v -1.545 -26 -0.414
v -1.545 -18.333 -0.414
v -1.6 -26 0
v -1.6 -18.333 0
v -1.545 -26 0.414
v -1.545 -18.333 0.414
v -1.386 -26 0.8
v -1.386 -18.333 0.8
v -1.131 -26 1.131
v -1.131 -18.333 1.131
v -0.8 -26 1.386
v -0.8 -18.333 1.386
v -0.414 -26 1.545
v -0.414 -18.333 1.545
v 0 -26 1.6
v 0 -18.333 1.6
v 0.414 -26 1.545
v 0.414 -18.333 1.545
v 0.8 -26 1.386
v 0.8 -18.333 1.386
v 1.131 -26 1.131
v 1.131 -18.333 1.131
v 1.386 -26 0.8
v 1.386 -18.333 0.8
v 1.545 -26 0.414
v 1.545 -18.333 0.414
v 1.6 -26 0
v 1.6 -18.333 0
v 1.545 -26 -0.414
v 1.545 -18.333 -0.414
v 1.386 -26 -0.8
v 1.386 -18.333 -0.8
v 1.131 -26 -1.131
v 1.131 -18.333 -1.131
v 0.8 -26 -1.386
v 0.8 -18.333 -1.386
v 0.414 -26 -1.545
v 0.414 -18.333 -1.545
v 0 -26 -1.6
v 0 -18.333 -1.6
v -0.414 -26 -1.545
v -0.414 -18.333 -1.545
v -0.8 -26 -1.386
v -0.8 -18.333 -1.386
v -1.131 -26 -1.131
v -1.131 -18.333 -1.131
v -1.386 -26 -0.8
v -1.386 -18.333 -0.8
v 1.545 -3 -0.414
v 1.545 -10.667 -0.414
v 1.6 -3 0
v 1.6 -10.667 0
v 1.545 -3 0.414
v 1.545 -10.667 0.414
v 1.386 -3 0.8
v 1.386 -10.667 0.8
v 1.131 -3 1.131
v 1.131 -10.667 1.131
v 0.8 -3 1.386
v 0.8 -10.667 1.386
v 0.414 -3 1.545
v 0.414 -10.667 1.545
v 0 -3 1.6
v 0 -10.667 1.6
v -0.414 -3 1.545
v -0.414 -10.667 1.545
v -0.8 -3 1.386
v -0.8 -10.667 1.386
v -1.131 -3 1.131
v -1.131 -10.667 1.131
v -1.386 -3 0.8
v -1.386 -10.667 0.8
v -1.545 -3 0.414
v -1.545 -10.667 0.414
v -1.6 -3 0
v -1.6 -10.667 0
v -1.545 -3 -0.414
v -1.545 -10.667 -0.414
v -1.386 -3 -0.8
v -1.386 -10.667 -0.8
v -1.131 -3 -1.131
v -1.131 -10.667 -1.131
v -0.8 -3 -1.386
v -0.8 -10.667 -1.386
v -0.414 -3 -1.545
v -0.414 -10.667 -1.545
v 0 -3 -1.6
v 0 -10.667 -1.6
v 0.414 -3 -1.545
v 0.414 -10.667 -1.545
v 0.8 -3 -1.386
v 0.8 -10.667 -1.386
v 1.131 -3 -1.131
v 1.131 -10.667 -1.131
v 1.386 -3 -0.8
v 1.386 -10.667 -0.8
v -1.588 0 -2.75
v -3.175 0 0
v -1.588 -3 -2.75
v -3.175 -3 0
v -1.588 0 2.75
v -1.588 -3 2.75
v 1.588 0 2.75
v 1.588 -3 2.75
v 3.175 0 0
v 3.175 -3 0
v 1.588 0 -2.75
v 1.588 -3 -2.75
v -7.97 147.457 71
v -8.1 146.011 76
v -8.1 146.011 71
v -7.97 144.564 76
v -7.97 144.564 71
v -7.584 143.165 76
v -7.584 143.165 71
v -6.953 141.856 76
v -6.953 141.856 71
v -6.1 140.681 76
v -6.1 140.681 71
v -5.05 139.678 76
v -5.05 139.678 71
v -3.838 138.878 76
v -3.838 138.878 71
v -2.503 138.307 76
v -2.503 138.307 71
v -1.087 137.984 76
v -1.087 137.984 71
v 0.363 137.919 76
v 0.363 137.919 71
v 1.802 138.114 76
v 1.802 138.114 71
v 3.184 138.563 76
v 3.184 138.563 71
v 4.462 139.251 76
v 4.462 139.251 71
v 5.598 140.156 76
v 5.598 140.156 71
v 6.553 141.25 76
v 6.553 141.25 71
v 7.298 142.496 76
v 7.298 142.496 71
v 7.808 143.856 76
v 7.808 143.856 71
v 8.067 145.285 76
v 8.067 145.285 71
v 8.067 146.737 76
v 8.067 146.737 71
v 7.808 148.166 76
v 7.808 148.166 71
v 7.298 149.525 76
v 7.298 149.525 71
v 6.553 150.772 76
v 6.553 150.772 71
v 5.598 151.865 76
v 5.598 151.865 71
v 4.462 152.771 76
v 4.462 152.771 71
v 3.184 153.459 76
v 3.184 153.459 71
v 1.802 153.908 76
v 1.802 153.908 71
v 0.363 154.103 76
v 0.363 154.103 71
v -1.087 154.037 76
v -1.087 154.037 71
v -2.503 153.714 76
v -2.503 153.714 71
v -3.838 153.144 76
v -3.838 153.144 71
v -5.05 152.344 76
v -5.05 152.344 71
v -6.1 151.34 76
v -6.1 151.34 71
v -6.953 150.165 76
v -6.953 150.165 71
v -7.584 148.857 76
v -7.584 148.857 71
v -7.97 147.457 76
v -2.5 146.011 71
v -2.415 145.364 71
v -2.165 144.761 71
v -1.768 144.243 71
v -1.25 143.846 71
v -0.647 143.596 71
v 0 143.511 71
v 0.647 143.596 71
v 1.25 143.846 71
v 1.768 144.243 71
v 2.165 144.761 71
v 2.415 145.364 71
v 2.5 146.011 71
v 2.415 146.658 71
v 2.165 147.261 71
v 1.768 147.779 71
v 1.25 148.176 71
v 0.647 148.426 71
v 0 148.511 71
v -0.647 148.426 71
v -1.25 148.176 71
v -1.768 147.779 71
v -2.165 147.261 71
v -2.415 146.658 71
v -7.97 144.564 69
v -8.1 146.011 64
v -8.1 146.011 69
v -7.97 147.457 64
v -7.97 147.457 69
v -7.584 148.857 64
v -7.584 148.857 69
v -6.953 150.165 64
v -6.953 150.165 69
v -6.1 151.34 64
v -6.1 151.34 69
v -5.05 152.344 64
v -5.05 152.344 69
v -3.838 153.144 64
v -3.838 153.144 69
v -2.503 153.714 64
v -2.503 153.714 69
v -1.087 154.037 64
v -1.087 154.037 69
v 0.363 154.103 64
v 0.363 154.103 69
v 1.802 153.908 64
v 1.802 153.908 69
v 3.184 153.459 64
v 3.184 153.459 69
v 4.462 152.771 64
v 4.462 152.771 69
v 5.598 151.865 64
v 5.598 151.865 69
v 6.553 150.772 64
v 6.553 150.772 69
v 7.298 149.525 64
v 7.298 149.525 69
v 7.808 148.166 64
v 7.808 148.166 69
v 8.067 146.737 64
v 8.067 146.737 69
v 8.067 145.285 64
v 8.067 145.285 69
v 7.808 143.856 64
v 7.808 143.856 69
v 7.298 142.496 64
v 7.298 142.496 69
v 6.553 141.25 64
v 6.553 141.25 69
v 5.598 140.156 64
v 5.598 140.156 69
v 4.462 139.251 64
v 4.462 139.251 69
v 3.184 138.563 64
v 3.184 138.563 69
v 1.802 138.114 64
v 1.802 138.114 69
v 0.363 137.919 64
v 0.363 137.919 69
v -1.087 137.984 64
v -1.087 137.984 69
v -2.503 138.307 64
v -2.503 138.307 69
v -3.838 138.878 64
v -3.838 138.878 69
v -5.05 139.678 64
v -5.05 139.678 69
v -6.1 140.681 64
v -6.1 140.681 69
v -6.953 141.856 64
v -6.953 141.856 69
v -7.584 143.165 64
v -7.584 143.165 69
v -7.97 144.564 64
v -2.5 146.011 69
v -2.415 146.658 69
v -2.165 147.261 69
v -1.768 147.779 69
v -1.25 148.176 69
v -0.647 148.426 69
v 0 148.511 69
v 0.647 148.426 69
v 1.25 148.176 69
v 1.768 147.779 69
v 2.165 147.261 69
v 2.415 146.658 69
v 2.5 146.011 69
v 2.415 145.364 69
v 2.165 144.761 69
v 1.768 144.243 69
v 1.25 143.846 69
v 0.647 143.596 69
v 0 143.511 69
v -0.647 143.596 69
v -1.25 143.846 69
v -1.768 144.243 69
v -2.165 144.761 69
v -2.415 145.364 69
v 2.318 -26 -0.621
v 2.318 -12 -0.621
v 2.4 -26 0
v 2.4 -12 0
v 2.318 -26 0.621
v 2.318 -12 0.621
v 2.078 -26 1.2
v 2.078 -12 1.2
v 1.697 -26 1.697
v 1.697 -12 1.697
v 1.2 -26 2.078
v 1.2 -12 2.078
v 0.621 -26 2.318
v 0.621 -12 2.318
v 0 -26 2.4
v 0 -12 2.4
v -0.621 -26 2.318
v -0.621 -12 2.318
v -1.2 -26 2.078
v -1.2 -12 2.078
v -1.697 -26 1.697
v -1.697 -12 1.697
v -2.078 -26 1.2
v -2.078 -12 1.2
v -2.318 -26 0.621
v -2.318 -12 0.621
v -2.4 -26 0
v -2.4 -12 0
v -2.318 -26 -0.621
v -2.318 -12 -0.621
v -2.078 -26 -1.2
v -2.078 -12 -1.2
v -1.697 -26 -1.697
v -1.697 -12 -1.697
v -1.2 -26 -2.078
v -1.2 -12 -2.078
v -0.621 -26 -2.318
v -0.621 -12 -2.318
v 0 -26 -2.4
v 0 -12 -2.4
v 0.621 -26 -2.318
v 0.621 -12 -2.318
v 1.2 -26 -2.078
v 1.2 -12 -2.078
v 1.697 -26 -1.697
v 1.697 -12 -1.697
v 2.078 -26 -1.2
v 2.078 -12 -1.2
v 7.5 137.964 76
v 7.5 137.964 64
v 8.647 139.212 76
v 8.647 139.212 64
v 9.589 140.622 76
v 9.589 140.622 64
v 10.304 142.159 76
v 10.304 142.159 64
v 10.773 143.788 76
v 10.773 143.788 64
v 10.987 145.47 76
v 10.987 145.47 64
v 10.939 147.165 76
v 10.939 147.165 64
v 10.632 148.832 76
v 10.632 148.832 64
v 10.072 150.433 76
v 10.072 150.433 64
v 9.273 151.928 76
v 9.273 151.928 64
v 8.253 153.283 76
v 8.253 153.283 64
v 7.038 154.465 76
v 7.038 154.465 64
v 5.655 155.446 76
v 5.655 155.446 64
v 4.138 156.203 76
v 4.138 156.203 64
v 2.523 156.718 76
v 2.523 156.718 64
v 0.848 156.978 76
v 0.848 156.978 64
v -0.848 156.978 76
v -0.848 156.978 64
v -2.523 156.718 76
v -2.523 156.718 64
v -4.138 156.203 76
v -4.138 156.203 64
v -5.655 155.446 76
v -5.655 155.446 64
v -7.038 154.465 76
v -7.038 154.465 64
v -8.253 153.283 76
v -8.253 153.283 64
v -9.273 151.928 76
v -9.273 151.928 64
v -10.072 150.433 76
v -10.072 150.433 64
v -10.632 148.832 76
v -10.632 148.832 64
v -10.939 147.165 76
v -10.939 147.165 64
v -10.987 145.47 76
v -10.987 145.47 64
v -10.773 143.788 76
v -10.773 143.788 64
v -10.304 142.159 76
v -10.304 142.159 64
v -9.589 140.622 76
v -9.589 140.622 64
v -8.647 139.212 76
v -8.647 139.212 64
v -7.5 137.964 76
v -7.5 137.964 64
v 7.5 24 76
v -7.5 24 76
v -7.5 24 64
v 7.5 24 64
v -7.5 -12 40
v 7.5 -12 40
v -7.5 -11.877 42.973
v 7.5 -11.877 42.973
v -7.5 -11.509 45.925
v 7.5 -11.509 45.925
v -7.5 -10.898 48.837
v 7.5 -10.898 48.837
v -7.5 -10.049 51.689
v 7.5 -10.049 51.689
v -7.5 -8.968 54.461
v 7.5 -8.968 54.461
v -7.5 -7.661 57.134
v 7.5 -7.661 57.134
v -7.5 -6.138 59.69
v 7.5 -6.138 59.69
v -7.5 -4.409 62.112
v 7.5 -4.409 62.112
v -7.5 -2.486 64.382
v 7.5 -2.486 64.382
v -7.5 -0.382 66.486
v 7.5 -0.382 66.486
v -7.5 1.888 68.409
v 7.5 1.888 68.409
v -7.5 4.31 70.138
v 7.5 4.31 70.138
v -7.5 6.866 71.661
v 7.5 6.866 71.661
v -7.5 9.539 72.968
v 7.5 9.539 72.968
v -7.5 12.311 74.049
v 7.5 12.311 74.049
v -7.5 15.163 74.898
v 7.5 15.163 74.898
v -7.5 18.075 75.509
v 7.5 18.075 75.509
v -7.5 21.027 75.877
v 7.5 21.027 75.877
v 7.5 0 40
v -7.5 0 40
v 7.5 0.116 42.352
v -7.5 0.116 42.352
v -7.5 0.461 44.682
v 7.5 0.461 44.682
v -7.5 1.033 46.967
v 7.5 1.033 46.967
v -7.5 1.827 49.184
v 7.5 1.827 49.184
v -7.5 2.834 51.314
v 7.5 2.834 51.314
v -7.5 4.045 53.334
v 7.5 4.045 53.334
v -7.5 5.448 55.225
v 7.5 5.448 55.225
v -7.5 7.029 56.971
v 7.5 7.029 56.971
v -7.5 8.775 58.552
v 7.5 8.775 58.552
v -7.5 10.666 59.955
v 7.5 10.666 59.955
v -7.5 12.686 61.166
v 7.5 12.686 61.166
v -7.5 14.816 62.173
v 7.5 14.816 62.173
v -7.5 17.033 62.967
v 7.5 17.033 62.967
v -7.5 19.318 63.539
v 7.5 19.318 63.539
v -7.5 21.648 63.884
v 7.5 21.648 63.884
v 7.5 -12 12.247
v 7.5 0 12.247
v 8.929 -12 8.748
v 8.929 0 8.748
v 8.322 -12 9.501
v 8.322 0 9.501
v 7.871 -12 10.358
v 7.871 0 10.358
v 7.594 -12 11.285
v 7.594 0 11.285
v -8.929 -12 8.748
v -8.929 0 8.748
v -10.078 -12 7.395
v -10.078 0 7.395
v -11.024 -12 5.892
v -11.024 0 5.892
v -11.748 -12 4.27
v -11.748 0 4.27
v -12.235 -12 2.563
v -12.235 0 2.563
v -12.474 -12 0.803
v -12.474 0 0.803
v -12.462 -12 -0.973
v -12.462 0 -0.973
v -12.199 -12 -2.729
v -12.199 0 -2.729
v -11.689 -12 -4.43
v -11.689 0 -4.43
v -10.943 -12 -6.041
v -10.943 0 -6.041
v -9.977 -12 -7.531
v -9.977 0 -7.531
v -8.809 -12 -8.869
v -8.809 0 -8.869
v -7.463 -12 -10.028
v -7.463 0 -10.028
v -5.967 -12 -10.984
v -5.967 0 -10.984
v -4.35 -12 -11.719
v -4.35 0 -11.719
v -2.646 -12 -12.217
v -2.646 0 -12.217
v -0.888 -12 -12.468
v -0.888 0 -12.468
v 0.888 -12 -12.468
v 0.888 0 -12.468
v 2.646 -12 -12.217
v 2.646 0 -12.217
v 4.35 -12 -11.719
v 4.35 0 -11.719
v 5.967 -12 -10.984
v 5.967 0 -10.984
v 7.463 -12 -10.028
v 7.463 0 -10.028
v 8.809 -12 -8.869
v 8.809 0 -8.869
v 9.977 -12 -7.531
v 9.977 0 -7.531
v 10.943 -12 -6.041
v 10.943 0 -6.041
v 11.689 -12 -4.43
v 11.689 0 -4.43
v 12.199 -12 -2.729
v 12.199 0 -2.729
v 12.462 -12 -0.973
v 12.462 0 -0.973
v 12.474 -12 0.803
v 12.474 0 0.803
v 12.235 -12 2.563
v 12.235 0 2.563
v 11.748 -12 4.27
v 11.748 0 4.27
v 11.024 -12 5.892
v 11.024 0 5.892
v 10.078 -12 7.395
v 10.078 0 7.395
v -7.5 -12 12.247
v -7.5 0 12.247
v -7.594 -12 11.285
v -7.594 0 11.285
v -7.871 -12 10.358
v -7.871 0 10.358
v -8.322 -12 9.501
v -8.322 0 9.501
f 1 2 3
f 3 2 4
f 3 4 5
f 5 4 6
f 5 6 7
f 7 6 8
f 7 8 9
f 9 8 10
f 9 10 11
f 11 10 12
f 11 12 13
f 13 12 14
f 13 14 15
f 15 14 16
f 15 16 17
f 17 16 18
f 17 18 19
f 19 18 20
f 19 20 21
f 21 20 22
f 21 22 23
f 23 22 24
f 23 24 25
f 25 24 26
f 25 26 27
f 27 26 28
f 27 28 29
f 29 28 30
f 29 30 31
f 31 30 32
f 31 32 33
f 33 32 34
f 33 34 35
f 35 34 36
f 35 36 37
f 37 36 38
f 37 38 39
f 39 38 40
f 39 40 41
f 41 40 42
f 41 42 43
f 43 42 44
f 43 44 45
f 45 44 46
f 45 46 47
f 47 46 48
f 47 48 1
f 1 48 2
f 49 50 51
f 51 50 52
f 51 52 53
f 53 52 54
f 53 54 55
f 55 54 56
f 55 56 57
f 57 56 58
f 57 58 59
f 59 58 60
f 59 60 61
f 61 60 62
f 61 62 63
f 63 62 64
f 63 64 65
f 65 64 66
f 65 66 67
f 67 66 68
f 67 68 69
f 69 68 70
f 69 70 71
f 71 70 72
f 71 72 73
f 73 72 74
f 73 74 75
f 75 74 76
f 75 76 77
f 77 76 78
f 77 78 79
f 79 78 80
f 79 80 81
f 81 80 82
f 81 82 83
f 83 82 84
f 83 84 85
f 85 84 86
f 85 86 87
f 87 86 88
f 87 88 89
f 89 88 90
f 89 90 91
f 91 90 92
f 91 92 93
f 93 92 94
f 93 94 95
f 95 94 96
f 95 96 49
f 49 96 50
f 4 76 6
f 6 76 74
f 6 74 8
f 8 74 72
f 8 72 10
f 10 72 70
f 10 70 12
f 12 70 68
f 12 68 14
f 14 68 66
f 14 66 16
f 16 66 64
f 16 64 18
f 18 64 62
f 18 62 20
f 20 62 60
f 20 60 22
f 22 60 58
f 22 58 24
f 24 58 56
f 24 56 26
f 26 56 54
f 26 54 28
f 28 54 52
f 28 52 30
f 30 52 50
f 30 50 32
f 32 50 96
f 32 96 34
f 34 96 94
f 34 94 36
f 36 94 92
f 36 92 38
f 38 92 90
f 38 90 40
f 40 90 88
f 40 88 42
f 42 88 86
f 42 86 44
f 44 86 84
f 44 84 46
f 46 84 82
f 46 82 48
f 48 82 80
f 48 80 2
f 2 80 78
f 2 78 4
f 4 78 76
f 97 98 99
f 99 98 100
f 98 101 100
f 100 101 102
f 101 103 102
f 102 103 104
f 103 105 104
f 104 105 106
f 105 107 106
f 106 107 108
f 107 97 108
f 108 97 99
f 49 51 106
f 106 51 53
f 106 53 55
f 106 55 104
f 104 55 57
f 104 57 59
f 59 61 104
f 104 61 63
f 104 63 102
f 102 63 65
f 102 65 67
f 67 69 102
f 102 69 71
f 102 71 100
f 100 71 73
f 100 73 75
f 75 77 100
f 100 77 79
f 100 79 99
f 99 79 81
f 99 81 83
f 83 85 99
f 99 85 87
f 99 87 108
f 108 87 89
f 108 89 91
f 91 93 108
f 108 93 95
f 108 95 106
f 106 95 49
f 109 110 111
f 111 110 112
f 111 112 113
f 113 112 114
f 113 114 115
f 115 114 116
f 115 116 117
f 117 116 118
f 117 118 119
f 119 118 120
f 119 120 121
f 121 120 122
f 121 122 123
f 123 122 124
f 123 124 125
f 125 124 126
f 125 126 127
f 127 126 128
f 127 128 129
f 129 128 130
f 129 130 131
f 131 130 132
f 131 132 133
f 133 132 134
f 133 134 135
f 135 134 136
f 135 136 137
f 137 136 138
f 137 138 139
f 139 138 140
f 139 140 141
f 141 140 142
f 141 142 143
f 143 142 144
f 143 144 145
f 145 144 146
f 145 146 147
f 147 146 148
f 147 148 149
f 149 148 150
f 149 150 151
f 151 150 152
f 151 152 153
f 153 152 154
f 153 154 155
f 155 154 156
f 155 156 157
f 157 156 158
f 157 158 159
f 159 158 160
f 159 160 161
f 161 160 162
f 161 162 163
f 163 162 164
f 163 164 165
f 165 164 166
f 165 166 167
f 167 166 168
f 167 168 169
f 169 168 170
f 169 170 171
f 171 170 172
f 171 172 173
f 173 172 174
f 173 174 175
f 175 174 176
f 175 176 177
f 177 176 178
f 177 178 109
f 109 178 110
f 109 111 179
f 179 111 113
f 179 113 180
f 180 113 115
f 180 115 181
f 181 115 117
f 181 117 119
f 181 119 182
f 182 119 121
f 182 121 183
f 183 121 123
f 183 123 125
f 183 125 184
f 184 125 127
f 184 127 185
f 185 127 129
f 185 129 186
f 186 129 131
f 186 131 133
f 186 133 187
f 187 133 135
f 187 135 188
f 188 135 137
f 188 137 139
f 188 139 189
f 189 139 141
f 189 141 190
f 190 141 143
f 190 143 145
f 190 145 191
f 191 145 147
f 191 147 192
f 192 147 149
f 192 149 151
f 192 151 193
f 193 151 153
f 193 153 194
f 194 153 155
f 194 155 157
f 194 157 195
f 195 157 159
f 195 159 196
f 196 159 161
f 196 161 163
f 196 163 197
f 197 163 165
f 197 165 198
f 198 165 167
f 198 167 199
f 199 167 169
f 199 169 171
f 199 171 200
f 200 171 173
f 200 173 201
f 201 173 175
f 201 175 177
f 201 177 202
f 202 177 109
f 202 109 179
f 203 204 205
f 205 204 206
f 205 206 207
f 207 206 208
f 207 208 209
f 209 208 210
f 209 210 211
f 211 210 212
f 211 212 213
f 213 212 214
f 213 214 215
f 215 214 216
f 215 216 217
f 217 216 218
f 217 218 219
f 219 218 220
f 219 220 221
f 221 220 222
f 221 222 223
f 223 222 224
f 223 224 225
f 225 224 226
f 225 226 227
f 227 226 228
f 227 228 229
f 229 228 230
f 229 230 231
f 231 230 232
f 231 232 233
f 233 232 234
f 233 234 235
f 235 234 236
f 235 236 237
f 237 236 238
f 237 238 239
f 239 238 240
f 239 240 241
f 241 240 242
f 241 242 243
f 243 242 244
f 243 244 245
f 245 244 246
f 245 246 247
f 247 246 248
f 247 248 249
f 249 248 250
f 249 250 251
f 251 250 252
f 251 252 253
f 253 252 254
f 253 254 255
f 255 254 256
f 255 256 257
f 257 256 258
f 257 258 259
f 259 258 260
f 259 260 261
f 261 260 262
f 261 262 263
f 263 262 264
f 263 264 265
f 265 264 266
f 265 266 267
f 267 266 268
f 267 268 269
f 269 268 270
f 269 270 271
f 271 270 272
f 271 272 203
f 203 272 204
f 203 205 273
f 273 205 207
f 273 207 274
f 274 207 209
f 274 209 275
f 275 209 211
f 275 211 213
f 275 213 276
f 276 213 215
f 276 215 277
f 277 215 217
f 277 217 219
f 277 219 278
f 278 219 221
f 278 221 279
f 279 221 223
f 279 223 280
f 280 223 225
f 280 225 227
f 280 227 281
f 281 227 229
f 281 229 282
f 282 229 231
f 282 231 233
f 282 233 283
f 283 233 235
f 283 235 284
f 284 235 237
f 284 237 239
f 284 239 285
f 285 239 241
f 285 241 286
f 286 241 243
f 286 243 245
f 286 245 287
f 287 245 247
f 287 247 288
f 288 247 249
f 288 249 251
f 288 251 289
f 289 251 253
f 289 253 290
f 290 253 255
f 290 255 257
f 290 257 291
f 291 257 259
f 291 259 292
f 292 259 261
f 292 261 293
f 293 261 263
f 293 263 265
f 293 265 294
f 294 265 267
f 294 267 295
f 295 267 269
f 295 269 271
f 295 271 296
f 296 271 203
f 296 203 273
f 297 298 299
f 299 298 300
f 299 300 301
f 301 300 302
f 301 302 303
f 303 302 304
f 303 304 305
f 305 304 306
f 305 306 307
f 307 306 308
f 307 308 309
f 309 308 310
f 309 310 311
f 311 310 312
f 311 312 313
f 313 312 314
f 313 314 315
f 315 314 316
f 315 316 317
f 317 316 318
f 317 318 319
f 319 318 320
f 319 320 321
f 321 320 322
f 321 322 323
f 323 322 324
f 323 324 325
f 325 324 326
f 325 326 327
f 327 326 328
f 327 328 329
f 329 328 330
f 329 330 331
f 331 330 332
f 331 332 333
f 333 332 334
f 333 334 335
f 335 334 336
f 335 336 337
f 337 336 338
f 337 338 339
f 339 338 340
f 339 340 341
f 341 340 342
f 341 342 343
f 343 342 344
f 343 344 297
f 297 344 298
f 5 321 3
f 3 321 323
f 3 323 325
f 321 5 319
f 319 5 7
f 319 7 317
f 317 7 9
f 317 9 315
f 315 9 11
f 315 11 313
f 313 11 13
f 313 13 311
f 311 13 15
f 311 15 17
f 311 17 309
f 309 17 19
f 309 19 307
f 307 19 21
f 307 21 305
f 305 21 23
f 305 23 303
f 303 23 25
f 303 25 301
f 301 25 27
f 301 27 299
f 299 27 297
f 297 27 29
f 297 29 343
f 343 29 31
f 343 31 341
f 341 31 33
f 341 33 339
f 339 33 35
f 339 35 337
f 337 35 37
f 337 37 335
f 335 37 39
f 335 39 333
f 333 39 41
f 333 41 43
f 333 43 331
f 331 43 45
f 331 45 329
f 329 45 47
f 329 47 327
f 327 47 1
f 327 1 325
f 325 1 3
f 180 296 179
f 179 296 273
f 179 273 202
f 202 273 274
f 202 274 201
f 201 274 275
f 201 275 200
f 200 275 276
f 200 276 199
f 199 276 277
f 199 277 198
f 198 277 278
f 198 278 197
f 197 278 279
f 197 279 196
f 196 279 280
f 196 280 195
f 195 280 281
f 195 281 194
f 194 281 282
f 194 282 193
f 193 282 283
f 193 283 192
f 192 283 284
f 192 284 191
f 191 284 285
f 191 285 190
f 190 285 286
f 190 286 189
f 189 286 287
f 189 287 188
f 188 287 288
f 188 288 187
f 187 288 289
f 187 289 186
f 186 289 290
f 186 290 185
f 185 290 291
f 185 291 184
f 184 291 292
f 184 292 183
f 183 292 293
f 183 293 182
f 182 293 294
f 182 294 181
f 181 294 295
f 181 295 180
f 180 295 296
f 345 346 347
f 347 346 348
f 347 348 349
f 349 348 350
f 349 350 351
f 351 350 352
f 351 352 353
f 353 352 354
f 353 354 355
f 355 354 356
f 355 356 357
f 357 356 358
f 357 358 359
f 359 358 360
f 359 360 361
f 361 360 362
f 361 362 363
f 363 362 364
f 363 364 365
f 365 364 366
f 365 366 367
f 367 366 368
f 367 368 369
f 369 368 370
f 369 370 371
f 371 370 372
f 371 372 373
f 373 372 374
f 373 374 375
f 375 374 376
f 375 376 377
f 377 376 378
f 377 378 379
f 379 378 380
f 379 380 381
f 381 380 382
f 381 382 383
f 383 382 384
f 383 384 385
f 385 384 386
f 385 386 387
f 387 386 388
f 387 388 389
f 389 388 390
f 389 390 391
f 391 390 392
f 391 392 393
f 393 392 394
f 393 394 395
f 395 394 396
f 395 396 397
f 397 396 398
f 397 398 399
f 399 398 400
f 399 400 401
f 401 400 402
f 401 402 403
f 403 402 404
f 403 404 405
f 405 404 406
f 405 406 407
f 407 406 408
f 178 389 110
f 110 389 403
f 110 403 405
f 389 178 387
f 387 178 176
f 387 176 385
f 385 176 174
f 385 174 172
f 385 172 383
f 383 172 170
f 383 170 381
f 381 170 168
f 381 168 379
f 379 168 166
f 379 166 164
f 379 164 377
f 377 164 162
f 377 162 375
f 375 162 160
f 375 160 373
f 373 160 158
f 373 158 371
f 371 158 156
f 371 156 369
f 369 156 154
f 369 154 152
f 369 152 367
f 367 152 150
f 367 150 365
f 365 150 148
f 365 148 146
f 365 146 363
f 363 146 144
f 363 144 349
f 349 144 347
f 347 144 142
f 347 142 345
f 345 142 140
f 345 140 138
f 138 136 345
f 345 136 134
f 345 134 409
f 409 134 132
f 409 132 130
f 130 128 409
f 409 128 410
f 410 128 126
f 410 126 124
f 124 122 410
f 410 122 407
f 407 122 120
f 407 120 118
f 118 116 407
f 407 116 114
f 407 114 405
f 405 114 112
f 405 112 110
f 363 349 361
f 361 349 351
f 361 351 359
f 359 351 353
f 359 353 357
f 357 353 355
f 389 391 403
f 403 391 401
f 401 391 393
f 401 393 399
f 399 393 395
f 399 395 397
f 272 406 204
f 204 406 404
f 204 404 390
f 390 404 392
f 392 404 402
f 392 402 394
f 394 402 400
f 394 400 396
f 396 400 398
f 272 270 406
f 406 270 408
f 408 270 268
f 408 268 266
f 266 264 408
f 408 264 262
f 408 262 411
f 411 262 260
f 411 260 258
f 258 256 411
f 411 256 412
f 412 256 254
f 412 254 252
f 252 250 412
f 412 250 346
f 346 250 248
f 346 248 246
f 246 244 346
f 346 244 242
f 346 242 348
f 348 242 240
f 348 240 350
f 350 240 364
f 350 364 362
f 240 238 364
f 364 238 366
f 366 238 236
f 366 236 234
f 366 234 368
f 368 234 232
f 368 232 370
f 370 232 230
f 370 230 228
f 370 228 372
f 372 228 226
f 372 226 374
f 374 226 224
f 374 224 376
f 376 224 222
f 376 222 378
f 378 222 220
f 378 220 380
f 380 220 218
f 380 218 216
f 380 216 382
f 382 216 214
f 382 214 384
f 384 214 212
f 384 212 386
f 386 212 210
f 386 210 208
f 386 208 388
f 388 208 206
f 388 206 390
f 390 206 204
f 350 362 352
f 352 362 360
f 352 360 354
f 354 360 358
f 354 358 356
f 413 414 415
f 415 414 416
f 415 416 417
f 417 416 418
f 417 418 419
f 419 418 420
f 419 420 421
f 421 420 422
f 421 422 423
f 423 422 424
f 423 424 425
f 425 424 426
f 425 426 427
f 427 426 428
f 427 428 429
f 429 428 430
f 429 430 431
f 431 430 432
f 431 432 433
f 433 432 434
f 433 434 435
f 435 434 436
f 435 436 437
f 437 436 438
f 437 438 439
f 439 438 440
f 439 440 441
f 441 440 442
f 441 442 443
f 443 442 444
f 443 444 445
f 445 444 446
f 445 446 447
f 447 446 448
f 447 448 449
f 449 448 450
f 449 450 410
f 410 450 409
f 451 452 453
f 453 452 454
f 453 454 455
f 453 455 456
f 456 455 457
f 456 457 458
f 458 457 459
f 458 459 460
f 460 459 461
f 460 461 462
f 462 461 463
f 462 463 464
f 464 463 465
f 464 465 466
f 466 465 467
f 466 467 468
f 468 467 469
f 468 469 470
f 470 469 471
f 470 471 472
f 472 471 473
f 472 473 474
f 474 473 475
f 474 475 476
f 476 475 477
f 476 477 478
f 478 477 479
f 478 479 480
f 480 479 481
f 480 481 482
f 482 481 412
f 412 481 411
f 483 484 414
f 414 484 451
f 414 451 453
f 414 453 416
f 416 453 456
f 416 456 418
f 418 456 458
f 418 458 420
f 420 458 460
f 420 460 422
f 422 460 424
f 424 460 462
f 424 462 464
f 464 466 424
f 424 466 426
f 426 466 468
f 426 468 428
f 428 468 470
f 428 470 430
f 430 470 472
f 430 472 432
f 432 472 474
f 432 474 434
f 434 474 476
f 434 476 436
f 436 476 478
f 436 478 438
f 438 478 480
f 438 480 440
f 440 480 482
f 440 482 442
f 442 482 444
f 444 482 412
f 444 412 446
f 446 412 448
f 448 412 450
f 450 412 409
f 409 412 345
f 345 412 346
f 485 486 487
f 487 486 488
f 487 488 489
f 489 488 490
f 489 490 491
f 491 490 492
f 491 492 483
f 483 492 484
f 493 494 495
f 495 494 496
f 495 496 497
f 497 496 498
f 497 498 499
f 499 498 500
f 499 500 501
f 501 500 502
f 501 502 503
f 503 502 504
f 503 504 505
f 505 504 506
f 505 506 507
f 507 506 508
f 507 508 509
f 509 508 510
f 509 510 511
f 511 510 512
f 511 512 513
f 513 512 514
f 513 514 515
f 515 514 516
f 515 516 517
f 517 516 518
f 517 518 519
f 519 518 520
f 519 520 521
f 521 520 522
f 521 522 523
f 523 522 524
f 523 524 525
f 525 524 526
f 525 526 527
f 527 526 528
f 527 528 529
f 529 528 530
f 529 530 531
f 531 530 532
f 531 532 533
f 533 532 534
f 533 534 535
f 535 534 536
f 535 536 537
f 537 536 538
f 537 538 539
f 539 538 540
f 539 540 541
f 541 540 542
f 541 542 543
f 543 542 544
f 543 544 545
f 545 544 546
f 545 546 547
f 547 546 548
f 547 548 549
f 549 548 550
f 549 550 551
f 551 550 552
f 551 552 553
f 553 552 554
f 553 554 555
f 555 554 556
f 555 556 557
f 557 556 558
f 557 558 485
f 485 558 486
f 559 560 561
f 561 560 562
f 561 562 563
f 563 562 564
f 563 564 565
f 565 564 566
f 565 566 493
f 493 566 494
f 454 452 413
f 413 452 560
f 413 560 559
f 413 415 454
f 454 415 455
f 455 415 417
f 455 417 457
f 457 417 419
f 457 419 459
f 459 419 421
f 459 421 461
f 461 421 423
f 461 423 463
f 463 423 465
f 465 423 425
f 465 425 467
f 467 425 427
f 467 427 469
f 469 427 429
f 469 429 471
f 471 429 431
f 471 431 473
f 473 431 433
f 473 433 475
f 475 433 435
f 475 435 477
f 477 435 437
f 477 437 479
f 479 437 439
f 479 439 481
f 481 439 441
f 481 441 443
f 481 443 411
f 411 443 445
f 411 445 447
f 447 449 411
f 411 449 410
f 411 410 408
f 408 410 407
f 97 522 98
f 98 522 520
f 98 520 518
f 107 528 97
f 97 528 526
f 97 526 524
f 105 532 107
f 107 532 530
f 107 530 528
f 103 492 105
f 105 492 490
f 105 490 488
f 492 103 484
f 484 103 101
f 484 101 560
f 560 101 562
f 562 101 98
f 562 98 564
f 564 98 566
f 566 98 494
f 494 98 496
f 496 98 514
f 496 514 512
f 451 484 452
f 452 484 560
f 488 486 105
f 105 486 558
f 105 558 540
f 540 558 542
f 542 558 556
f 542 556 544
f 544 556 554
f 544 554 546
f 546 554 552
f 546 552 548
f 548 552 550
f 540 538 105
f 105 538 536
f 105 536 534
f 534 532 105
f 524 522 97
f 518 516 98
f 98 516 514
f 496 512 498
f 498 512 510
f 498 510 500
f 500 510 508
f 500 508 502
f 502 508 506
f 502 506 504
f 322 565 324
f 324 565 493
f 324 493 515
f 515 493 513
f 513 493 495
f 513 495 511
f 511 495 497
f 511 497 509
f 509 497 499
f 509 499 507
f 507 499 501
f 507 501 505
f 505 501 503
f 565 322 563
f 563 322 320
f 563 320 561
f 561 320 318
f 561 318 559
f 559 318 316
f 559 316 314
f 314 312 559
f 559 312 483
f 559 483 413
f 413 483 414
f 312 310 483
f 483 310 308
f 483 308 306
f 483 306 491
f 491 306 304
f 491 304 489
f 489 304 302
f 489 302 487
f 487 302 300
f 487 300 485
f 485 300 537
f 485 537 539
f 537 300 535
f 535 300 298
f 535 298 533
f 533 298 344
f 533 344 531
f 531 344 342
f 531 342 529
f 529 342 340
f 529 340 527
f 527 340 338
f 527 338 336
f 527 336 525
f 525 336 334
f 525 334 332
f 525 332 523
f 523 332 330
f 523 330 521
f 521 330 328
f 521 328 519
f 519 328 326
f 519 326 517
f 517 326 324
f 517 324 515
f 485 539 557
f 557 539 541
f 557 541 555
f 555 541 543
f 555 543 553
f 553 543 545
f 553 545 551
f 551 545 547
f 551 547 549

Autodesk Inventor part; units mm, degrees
ref_plane "YZ Plane" through (0, 0, 0) normal (1, 0, 0) x (0, 1, 0)
ref_plane "XZ Plane" through (0, 0, 0) normal (0, 1, 0) x (-1, 0, 0)
sketch "Sketch1" plane through (0, 0, 0) normal (0, 1, 0) x (-1, 0, 0)
  arc A0 (-8.9286, 8.7482) -> (8.9286, 8.7482) centre (0, 0) ccw
  line L0 (-7.5, 12.2474) -> (-7.5, 20)
  line L1 (7.5, 20) -> (7.5, 12.2474)
  line L2 (7.5, 20) -> (-7.5, 20)
  arc A1 (7.5, 12.2474) -> (8.9286, 8.7482) centre (12.5, 12.2474) ccw
  arc A2 (-8.9286, 8.7482) -> (-7.5, 12.2474) centre (-12.5, 12.2474) ccw
  point P0 (7.5, 10)
  point P1 (-7.5, 10)
  point P2 (0, 10)
  point P3 (0, 20)
  dimension "d0" = 25
  dimension "d109" = 5
  dimension "d129" = 15
  dimension "d131" = 10
extrude "Extrusion1" add sketch "Sketch1" against normal blind 12
sketch "Sketch22" plane through (-7.5, 0, 20) normal (0, 0, 1) x (1, 0, 0)
  line L0 (0, 0) -> (0, -12) projected
  line L1 (15, -12) -> (0, -12) projected
  line L2 (0, 0) -> (15, 0)
  line L3 (15, 0) -> (15, -12)
  line L4 (15, -12) -> (0, -12)
  line L5 (0, -12) -> (0, 0)
  point P0 (7.5, 0)
sketch "Sketch23" plane through (0, 0, 0) normal (1, 0, 0) x (0, 1, 0)
  line L0 (0, 20) -> (-12, 20) projected
  line L1 (-6, 20) -> (-6, 40)
  line L2 (24, 70) -> (134.0108, 70)
  arc A0 (24, 70) -> (-6, 40) centre (24, 40) ccw
  point P0 (0, 0)
  point P1 (-6, 70)
  dimension "d110" = 50
  dimension "d111" = 140.0108
  dimension "d112" = 90
  dimension "d113" = 30
sweep "Sweep2" add profiles "Sketch22" path "Sketch23" path curves L1 A0 L2
ref_plane "Work Plane11" through (7.5, 24, 70) normal (0, 0, -1) x (-1, 0, 0)
sketch "Sketch24" plane through (7.5, 24, 70) normal (0, 0, -1) x (-1, 0, 0)
  line L0 (0, 110.0108) -> (15, 110.0108)
  line L1 (0, 110.0108) -> (15, 110.0108)
  line L2 (0, 110.0108) -> (0, 113.964)
  line L3 (15, 110.0108) -> (15, 113.964)
  arc A0 (15, 113.964) -> (0, 113.964) centre (7.5, 122.0108) ccw
  line L4 (0, 110.0108) -> (15, 110.0108) projected
  point P0 (7.5, -24)
  point P1 (7.5, 110.0108)
  point P2 (7.5, 110.0108)
  dimension "d139" = 22
  dimension "d140" = 12
  dimension "d141" = 15
extrude "Extrusion17" add sketch "Sketch24" along normal mid plane 12
sketch "Sketch25" plane through (-7.5, 24, 76) normal (0, 0, 1) x (1, 0, 0)
  circle A0 centre (7.5, 122.0108) radius 2.5
  arc A1 (15, 113.964) -> (0, 113.964) centre (7.5, 122.0108) ccw projected
  point P0 (7.5, -24)
  dimension "d123" = 5
extrude "Extrusion18" cut sketch "Sketch25" against normal through all
sketch "Sketch27" plane through (0, 0, 0) normal (0, 1, 0) x (1, 0, 0)
  arc A0 (8.9286, -8.7482) -> (-8.9286, -8.7482) centre (0, 0) ccw projected
  circle A1 centre (0, 0) radius 2.4
  dimension "d136" = 4.8
extrude "Extrusion20" add sketch "Sketch27" against normal blind 26
sketch "Sketch28" plane through (7.5, 24, 64) normal (0, 0, -1) x (-1, 0, 0)
  circle A0 centre (7.5, 122.0108) radius 2.5 projected
  circle A1 centre (7.5, 122.0108) radius 8.1
  point P0 (7.5, -24)
  dimension "d142" = 16.2
extrude "Extrusion21" cut sketch "Sketch28" against normal blind 5
mirror "Mirror2" about plane through (7.5, 24, 70) normal (0, 0, -1) of "Extrusion21"
sketch "Sketch29" plane through (0, 0, 0) normal (0, 1, 0) x (1, 0, 0)
  circle A0 centre (0, 0) radius 2.4 projected
  line L0 (3.1754, 0) -> (1.5877, -2.75)
  line L1 (1.5877, -2.75) -> (-1.5877, -2.75)
  line L2 (-1.5877, -2.75) -> (-3.1754, 0)
  line L3 (-3.1754, 0) -> (-1.5877, 2.75)
  line L4 (-1.5877, 2.75) -> (1.5877, 2.75)
  line L5 (1.5877, 2.75) -> (3.1754, 0)
  dimension "d145" = 5.5
extrude "Extrusion22" cut sketch "Sketch29" against normal blind 3 contours A0 | L0 L1 L2 L3 L4 L5
sketch "Sketch30" plane through (0, -3, 0) normal (0, 1, 0) x (1, 0, 0)
  circle A0 centre (0, 0) radius 1.6
  dimension "d148" = 3.2
extrude "Extrusion23" cut sketch "Sketch30" against normal through all
properties part number "distal_link_2"
